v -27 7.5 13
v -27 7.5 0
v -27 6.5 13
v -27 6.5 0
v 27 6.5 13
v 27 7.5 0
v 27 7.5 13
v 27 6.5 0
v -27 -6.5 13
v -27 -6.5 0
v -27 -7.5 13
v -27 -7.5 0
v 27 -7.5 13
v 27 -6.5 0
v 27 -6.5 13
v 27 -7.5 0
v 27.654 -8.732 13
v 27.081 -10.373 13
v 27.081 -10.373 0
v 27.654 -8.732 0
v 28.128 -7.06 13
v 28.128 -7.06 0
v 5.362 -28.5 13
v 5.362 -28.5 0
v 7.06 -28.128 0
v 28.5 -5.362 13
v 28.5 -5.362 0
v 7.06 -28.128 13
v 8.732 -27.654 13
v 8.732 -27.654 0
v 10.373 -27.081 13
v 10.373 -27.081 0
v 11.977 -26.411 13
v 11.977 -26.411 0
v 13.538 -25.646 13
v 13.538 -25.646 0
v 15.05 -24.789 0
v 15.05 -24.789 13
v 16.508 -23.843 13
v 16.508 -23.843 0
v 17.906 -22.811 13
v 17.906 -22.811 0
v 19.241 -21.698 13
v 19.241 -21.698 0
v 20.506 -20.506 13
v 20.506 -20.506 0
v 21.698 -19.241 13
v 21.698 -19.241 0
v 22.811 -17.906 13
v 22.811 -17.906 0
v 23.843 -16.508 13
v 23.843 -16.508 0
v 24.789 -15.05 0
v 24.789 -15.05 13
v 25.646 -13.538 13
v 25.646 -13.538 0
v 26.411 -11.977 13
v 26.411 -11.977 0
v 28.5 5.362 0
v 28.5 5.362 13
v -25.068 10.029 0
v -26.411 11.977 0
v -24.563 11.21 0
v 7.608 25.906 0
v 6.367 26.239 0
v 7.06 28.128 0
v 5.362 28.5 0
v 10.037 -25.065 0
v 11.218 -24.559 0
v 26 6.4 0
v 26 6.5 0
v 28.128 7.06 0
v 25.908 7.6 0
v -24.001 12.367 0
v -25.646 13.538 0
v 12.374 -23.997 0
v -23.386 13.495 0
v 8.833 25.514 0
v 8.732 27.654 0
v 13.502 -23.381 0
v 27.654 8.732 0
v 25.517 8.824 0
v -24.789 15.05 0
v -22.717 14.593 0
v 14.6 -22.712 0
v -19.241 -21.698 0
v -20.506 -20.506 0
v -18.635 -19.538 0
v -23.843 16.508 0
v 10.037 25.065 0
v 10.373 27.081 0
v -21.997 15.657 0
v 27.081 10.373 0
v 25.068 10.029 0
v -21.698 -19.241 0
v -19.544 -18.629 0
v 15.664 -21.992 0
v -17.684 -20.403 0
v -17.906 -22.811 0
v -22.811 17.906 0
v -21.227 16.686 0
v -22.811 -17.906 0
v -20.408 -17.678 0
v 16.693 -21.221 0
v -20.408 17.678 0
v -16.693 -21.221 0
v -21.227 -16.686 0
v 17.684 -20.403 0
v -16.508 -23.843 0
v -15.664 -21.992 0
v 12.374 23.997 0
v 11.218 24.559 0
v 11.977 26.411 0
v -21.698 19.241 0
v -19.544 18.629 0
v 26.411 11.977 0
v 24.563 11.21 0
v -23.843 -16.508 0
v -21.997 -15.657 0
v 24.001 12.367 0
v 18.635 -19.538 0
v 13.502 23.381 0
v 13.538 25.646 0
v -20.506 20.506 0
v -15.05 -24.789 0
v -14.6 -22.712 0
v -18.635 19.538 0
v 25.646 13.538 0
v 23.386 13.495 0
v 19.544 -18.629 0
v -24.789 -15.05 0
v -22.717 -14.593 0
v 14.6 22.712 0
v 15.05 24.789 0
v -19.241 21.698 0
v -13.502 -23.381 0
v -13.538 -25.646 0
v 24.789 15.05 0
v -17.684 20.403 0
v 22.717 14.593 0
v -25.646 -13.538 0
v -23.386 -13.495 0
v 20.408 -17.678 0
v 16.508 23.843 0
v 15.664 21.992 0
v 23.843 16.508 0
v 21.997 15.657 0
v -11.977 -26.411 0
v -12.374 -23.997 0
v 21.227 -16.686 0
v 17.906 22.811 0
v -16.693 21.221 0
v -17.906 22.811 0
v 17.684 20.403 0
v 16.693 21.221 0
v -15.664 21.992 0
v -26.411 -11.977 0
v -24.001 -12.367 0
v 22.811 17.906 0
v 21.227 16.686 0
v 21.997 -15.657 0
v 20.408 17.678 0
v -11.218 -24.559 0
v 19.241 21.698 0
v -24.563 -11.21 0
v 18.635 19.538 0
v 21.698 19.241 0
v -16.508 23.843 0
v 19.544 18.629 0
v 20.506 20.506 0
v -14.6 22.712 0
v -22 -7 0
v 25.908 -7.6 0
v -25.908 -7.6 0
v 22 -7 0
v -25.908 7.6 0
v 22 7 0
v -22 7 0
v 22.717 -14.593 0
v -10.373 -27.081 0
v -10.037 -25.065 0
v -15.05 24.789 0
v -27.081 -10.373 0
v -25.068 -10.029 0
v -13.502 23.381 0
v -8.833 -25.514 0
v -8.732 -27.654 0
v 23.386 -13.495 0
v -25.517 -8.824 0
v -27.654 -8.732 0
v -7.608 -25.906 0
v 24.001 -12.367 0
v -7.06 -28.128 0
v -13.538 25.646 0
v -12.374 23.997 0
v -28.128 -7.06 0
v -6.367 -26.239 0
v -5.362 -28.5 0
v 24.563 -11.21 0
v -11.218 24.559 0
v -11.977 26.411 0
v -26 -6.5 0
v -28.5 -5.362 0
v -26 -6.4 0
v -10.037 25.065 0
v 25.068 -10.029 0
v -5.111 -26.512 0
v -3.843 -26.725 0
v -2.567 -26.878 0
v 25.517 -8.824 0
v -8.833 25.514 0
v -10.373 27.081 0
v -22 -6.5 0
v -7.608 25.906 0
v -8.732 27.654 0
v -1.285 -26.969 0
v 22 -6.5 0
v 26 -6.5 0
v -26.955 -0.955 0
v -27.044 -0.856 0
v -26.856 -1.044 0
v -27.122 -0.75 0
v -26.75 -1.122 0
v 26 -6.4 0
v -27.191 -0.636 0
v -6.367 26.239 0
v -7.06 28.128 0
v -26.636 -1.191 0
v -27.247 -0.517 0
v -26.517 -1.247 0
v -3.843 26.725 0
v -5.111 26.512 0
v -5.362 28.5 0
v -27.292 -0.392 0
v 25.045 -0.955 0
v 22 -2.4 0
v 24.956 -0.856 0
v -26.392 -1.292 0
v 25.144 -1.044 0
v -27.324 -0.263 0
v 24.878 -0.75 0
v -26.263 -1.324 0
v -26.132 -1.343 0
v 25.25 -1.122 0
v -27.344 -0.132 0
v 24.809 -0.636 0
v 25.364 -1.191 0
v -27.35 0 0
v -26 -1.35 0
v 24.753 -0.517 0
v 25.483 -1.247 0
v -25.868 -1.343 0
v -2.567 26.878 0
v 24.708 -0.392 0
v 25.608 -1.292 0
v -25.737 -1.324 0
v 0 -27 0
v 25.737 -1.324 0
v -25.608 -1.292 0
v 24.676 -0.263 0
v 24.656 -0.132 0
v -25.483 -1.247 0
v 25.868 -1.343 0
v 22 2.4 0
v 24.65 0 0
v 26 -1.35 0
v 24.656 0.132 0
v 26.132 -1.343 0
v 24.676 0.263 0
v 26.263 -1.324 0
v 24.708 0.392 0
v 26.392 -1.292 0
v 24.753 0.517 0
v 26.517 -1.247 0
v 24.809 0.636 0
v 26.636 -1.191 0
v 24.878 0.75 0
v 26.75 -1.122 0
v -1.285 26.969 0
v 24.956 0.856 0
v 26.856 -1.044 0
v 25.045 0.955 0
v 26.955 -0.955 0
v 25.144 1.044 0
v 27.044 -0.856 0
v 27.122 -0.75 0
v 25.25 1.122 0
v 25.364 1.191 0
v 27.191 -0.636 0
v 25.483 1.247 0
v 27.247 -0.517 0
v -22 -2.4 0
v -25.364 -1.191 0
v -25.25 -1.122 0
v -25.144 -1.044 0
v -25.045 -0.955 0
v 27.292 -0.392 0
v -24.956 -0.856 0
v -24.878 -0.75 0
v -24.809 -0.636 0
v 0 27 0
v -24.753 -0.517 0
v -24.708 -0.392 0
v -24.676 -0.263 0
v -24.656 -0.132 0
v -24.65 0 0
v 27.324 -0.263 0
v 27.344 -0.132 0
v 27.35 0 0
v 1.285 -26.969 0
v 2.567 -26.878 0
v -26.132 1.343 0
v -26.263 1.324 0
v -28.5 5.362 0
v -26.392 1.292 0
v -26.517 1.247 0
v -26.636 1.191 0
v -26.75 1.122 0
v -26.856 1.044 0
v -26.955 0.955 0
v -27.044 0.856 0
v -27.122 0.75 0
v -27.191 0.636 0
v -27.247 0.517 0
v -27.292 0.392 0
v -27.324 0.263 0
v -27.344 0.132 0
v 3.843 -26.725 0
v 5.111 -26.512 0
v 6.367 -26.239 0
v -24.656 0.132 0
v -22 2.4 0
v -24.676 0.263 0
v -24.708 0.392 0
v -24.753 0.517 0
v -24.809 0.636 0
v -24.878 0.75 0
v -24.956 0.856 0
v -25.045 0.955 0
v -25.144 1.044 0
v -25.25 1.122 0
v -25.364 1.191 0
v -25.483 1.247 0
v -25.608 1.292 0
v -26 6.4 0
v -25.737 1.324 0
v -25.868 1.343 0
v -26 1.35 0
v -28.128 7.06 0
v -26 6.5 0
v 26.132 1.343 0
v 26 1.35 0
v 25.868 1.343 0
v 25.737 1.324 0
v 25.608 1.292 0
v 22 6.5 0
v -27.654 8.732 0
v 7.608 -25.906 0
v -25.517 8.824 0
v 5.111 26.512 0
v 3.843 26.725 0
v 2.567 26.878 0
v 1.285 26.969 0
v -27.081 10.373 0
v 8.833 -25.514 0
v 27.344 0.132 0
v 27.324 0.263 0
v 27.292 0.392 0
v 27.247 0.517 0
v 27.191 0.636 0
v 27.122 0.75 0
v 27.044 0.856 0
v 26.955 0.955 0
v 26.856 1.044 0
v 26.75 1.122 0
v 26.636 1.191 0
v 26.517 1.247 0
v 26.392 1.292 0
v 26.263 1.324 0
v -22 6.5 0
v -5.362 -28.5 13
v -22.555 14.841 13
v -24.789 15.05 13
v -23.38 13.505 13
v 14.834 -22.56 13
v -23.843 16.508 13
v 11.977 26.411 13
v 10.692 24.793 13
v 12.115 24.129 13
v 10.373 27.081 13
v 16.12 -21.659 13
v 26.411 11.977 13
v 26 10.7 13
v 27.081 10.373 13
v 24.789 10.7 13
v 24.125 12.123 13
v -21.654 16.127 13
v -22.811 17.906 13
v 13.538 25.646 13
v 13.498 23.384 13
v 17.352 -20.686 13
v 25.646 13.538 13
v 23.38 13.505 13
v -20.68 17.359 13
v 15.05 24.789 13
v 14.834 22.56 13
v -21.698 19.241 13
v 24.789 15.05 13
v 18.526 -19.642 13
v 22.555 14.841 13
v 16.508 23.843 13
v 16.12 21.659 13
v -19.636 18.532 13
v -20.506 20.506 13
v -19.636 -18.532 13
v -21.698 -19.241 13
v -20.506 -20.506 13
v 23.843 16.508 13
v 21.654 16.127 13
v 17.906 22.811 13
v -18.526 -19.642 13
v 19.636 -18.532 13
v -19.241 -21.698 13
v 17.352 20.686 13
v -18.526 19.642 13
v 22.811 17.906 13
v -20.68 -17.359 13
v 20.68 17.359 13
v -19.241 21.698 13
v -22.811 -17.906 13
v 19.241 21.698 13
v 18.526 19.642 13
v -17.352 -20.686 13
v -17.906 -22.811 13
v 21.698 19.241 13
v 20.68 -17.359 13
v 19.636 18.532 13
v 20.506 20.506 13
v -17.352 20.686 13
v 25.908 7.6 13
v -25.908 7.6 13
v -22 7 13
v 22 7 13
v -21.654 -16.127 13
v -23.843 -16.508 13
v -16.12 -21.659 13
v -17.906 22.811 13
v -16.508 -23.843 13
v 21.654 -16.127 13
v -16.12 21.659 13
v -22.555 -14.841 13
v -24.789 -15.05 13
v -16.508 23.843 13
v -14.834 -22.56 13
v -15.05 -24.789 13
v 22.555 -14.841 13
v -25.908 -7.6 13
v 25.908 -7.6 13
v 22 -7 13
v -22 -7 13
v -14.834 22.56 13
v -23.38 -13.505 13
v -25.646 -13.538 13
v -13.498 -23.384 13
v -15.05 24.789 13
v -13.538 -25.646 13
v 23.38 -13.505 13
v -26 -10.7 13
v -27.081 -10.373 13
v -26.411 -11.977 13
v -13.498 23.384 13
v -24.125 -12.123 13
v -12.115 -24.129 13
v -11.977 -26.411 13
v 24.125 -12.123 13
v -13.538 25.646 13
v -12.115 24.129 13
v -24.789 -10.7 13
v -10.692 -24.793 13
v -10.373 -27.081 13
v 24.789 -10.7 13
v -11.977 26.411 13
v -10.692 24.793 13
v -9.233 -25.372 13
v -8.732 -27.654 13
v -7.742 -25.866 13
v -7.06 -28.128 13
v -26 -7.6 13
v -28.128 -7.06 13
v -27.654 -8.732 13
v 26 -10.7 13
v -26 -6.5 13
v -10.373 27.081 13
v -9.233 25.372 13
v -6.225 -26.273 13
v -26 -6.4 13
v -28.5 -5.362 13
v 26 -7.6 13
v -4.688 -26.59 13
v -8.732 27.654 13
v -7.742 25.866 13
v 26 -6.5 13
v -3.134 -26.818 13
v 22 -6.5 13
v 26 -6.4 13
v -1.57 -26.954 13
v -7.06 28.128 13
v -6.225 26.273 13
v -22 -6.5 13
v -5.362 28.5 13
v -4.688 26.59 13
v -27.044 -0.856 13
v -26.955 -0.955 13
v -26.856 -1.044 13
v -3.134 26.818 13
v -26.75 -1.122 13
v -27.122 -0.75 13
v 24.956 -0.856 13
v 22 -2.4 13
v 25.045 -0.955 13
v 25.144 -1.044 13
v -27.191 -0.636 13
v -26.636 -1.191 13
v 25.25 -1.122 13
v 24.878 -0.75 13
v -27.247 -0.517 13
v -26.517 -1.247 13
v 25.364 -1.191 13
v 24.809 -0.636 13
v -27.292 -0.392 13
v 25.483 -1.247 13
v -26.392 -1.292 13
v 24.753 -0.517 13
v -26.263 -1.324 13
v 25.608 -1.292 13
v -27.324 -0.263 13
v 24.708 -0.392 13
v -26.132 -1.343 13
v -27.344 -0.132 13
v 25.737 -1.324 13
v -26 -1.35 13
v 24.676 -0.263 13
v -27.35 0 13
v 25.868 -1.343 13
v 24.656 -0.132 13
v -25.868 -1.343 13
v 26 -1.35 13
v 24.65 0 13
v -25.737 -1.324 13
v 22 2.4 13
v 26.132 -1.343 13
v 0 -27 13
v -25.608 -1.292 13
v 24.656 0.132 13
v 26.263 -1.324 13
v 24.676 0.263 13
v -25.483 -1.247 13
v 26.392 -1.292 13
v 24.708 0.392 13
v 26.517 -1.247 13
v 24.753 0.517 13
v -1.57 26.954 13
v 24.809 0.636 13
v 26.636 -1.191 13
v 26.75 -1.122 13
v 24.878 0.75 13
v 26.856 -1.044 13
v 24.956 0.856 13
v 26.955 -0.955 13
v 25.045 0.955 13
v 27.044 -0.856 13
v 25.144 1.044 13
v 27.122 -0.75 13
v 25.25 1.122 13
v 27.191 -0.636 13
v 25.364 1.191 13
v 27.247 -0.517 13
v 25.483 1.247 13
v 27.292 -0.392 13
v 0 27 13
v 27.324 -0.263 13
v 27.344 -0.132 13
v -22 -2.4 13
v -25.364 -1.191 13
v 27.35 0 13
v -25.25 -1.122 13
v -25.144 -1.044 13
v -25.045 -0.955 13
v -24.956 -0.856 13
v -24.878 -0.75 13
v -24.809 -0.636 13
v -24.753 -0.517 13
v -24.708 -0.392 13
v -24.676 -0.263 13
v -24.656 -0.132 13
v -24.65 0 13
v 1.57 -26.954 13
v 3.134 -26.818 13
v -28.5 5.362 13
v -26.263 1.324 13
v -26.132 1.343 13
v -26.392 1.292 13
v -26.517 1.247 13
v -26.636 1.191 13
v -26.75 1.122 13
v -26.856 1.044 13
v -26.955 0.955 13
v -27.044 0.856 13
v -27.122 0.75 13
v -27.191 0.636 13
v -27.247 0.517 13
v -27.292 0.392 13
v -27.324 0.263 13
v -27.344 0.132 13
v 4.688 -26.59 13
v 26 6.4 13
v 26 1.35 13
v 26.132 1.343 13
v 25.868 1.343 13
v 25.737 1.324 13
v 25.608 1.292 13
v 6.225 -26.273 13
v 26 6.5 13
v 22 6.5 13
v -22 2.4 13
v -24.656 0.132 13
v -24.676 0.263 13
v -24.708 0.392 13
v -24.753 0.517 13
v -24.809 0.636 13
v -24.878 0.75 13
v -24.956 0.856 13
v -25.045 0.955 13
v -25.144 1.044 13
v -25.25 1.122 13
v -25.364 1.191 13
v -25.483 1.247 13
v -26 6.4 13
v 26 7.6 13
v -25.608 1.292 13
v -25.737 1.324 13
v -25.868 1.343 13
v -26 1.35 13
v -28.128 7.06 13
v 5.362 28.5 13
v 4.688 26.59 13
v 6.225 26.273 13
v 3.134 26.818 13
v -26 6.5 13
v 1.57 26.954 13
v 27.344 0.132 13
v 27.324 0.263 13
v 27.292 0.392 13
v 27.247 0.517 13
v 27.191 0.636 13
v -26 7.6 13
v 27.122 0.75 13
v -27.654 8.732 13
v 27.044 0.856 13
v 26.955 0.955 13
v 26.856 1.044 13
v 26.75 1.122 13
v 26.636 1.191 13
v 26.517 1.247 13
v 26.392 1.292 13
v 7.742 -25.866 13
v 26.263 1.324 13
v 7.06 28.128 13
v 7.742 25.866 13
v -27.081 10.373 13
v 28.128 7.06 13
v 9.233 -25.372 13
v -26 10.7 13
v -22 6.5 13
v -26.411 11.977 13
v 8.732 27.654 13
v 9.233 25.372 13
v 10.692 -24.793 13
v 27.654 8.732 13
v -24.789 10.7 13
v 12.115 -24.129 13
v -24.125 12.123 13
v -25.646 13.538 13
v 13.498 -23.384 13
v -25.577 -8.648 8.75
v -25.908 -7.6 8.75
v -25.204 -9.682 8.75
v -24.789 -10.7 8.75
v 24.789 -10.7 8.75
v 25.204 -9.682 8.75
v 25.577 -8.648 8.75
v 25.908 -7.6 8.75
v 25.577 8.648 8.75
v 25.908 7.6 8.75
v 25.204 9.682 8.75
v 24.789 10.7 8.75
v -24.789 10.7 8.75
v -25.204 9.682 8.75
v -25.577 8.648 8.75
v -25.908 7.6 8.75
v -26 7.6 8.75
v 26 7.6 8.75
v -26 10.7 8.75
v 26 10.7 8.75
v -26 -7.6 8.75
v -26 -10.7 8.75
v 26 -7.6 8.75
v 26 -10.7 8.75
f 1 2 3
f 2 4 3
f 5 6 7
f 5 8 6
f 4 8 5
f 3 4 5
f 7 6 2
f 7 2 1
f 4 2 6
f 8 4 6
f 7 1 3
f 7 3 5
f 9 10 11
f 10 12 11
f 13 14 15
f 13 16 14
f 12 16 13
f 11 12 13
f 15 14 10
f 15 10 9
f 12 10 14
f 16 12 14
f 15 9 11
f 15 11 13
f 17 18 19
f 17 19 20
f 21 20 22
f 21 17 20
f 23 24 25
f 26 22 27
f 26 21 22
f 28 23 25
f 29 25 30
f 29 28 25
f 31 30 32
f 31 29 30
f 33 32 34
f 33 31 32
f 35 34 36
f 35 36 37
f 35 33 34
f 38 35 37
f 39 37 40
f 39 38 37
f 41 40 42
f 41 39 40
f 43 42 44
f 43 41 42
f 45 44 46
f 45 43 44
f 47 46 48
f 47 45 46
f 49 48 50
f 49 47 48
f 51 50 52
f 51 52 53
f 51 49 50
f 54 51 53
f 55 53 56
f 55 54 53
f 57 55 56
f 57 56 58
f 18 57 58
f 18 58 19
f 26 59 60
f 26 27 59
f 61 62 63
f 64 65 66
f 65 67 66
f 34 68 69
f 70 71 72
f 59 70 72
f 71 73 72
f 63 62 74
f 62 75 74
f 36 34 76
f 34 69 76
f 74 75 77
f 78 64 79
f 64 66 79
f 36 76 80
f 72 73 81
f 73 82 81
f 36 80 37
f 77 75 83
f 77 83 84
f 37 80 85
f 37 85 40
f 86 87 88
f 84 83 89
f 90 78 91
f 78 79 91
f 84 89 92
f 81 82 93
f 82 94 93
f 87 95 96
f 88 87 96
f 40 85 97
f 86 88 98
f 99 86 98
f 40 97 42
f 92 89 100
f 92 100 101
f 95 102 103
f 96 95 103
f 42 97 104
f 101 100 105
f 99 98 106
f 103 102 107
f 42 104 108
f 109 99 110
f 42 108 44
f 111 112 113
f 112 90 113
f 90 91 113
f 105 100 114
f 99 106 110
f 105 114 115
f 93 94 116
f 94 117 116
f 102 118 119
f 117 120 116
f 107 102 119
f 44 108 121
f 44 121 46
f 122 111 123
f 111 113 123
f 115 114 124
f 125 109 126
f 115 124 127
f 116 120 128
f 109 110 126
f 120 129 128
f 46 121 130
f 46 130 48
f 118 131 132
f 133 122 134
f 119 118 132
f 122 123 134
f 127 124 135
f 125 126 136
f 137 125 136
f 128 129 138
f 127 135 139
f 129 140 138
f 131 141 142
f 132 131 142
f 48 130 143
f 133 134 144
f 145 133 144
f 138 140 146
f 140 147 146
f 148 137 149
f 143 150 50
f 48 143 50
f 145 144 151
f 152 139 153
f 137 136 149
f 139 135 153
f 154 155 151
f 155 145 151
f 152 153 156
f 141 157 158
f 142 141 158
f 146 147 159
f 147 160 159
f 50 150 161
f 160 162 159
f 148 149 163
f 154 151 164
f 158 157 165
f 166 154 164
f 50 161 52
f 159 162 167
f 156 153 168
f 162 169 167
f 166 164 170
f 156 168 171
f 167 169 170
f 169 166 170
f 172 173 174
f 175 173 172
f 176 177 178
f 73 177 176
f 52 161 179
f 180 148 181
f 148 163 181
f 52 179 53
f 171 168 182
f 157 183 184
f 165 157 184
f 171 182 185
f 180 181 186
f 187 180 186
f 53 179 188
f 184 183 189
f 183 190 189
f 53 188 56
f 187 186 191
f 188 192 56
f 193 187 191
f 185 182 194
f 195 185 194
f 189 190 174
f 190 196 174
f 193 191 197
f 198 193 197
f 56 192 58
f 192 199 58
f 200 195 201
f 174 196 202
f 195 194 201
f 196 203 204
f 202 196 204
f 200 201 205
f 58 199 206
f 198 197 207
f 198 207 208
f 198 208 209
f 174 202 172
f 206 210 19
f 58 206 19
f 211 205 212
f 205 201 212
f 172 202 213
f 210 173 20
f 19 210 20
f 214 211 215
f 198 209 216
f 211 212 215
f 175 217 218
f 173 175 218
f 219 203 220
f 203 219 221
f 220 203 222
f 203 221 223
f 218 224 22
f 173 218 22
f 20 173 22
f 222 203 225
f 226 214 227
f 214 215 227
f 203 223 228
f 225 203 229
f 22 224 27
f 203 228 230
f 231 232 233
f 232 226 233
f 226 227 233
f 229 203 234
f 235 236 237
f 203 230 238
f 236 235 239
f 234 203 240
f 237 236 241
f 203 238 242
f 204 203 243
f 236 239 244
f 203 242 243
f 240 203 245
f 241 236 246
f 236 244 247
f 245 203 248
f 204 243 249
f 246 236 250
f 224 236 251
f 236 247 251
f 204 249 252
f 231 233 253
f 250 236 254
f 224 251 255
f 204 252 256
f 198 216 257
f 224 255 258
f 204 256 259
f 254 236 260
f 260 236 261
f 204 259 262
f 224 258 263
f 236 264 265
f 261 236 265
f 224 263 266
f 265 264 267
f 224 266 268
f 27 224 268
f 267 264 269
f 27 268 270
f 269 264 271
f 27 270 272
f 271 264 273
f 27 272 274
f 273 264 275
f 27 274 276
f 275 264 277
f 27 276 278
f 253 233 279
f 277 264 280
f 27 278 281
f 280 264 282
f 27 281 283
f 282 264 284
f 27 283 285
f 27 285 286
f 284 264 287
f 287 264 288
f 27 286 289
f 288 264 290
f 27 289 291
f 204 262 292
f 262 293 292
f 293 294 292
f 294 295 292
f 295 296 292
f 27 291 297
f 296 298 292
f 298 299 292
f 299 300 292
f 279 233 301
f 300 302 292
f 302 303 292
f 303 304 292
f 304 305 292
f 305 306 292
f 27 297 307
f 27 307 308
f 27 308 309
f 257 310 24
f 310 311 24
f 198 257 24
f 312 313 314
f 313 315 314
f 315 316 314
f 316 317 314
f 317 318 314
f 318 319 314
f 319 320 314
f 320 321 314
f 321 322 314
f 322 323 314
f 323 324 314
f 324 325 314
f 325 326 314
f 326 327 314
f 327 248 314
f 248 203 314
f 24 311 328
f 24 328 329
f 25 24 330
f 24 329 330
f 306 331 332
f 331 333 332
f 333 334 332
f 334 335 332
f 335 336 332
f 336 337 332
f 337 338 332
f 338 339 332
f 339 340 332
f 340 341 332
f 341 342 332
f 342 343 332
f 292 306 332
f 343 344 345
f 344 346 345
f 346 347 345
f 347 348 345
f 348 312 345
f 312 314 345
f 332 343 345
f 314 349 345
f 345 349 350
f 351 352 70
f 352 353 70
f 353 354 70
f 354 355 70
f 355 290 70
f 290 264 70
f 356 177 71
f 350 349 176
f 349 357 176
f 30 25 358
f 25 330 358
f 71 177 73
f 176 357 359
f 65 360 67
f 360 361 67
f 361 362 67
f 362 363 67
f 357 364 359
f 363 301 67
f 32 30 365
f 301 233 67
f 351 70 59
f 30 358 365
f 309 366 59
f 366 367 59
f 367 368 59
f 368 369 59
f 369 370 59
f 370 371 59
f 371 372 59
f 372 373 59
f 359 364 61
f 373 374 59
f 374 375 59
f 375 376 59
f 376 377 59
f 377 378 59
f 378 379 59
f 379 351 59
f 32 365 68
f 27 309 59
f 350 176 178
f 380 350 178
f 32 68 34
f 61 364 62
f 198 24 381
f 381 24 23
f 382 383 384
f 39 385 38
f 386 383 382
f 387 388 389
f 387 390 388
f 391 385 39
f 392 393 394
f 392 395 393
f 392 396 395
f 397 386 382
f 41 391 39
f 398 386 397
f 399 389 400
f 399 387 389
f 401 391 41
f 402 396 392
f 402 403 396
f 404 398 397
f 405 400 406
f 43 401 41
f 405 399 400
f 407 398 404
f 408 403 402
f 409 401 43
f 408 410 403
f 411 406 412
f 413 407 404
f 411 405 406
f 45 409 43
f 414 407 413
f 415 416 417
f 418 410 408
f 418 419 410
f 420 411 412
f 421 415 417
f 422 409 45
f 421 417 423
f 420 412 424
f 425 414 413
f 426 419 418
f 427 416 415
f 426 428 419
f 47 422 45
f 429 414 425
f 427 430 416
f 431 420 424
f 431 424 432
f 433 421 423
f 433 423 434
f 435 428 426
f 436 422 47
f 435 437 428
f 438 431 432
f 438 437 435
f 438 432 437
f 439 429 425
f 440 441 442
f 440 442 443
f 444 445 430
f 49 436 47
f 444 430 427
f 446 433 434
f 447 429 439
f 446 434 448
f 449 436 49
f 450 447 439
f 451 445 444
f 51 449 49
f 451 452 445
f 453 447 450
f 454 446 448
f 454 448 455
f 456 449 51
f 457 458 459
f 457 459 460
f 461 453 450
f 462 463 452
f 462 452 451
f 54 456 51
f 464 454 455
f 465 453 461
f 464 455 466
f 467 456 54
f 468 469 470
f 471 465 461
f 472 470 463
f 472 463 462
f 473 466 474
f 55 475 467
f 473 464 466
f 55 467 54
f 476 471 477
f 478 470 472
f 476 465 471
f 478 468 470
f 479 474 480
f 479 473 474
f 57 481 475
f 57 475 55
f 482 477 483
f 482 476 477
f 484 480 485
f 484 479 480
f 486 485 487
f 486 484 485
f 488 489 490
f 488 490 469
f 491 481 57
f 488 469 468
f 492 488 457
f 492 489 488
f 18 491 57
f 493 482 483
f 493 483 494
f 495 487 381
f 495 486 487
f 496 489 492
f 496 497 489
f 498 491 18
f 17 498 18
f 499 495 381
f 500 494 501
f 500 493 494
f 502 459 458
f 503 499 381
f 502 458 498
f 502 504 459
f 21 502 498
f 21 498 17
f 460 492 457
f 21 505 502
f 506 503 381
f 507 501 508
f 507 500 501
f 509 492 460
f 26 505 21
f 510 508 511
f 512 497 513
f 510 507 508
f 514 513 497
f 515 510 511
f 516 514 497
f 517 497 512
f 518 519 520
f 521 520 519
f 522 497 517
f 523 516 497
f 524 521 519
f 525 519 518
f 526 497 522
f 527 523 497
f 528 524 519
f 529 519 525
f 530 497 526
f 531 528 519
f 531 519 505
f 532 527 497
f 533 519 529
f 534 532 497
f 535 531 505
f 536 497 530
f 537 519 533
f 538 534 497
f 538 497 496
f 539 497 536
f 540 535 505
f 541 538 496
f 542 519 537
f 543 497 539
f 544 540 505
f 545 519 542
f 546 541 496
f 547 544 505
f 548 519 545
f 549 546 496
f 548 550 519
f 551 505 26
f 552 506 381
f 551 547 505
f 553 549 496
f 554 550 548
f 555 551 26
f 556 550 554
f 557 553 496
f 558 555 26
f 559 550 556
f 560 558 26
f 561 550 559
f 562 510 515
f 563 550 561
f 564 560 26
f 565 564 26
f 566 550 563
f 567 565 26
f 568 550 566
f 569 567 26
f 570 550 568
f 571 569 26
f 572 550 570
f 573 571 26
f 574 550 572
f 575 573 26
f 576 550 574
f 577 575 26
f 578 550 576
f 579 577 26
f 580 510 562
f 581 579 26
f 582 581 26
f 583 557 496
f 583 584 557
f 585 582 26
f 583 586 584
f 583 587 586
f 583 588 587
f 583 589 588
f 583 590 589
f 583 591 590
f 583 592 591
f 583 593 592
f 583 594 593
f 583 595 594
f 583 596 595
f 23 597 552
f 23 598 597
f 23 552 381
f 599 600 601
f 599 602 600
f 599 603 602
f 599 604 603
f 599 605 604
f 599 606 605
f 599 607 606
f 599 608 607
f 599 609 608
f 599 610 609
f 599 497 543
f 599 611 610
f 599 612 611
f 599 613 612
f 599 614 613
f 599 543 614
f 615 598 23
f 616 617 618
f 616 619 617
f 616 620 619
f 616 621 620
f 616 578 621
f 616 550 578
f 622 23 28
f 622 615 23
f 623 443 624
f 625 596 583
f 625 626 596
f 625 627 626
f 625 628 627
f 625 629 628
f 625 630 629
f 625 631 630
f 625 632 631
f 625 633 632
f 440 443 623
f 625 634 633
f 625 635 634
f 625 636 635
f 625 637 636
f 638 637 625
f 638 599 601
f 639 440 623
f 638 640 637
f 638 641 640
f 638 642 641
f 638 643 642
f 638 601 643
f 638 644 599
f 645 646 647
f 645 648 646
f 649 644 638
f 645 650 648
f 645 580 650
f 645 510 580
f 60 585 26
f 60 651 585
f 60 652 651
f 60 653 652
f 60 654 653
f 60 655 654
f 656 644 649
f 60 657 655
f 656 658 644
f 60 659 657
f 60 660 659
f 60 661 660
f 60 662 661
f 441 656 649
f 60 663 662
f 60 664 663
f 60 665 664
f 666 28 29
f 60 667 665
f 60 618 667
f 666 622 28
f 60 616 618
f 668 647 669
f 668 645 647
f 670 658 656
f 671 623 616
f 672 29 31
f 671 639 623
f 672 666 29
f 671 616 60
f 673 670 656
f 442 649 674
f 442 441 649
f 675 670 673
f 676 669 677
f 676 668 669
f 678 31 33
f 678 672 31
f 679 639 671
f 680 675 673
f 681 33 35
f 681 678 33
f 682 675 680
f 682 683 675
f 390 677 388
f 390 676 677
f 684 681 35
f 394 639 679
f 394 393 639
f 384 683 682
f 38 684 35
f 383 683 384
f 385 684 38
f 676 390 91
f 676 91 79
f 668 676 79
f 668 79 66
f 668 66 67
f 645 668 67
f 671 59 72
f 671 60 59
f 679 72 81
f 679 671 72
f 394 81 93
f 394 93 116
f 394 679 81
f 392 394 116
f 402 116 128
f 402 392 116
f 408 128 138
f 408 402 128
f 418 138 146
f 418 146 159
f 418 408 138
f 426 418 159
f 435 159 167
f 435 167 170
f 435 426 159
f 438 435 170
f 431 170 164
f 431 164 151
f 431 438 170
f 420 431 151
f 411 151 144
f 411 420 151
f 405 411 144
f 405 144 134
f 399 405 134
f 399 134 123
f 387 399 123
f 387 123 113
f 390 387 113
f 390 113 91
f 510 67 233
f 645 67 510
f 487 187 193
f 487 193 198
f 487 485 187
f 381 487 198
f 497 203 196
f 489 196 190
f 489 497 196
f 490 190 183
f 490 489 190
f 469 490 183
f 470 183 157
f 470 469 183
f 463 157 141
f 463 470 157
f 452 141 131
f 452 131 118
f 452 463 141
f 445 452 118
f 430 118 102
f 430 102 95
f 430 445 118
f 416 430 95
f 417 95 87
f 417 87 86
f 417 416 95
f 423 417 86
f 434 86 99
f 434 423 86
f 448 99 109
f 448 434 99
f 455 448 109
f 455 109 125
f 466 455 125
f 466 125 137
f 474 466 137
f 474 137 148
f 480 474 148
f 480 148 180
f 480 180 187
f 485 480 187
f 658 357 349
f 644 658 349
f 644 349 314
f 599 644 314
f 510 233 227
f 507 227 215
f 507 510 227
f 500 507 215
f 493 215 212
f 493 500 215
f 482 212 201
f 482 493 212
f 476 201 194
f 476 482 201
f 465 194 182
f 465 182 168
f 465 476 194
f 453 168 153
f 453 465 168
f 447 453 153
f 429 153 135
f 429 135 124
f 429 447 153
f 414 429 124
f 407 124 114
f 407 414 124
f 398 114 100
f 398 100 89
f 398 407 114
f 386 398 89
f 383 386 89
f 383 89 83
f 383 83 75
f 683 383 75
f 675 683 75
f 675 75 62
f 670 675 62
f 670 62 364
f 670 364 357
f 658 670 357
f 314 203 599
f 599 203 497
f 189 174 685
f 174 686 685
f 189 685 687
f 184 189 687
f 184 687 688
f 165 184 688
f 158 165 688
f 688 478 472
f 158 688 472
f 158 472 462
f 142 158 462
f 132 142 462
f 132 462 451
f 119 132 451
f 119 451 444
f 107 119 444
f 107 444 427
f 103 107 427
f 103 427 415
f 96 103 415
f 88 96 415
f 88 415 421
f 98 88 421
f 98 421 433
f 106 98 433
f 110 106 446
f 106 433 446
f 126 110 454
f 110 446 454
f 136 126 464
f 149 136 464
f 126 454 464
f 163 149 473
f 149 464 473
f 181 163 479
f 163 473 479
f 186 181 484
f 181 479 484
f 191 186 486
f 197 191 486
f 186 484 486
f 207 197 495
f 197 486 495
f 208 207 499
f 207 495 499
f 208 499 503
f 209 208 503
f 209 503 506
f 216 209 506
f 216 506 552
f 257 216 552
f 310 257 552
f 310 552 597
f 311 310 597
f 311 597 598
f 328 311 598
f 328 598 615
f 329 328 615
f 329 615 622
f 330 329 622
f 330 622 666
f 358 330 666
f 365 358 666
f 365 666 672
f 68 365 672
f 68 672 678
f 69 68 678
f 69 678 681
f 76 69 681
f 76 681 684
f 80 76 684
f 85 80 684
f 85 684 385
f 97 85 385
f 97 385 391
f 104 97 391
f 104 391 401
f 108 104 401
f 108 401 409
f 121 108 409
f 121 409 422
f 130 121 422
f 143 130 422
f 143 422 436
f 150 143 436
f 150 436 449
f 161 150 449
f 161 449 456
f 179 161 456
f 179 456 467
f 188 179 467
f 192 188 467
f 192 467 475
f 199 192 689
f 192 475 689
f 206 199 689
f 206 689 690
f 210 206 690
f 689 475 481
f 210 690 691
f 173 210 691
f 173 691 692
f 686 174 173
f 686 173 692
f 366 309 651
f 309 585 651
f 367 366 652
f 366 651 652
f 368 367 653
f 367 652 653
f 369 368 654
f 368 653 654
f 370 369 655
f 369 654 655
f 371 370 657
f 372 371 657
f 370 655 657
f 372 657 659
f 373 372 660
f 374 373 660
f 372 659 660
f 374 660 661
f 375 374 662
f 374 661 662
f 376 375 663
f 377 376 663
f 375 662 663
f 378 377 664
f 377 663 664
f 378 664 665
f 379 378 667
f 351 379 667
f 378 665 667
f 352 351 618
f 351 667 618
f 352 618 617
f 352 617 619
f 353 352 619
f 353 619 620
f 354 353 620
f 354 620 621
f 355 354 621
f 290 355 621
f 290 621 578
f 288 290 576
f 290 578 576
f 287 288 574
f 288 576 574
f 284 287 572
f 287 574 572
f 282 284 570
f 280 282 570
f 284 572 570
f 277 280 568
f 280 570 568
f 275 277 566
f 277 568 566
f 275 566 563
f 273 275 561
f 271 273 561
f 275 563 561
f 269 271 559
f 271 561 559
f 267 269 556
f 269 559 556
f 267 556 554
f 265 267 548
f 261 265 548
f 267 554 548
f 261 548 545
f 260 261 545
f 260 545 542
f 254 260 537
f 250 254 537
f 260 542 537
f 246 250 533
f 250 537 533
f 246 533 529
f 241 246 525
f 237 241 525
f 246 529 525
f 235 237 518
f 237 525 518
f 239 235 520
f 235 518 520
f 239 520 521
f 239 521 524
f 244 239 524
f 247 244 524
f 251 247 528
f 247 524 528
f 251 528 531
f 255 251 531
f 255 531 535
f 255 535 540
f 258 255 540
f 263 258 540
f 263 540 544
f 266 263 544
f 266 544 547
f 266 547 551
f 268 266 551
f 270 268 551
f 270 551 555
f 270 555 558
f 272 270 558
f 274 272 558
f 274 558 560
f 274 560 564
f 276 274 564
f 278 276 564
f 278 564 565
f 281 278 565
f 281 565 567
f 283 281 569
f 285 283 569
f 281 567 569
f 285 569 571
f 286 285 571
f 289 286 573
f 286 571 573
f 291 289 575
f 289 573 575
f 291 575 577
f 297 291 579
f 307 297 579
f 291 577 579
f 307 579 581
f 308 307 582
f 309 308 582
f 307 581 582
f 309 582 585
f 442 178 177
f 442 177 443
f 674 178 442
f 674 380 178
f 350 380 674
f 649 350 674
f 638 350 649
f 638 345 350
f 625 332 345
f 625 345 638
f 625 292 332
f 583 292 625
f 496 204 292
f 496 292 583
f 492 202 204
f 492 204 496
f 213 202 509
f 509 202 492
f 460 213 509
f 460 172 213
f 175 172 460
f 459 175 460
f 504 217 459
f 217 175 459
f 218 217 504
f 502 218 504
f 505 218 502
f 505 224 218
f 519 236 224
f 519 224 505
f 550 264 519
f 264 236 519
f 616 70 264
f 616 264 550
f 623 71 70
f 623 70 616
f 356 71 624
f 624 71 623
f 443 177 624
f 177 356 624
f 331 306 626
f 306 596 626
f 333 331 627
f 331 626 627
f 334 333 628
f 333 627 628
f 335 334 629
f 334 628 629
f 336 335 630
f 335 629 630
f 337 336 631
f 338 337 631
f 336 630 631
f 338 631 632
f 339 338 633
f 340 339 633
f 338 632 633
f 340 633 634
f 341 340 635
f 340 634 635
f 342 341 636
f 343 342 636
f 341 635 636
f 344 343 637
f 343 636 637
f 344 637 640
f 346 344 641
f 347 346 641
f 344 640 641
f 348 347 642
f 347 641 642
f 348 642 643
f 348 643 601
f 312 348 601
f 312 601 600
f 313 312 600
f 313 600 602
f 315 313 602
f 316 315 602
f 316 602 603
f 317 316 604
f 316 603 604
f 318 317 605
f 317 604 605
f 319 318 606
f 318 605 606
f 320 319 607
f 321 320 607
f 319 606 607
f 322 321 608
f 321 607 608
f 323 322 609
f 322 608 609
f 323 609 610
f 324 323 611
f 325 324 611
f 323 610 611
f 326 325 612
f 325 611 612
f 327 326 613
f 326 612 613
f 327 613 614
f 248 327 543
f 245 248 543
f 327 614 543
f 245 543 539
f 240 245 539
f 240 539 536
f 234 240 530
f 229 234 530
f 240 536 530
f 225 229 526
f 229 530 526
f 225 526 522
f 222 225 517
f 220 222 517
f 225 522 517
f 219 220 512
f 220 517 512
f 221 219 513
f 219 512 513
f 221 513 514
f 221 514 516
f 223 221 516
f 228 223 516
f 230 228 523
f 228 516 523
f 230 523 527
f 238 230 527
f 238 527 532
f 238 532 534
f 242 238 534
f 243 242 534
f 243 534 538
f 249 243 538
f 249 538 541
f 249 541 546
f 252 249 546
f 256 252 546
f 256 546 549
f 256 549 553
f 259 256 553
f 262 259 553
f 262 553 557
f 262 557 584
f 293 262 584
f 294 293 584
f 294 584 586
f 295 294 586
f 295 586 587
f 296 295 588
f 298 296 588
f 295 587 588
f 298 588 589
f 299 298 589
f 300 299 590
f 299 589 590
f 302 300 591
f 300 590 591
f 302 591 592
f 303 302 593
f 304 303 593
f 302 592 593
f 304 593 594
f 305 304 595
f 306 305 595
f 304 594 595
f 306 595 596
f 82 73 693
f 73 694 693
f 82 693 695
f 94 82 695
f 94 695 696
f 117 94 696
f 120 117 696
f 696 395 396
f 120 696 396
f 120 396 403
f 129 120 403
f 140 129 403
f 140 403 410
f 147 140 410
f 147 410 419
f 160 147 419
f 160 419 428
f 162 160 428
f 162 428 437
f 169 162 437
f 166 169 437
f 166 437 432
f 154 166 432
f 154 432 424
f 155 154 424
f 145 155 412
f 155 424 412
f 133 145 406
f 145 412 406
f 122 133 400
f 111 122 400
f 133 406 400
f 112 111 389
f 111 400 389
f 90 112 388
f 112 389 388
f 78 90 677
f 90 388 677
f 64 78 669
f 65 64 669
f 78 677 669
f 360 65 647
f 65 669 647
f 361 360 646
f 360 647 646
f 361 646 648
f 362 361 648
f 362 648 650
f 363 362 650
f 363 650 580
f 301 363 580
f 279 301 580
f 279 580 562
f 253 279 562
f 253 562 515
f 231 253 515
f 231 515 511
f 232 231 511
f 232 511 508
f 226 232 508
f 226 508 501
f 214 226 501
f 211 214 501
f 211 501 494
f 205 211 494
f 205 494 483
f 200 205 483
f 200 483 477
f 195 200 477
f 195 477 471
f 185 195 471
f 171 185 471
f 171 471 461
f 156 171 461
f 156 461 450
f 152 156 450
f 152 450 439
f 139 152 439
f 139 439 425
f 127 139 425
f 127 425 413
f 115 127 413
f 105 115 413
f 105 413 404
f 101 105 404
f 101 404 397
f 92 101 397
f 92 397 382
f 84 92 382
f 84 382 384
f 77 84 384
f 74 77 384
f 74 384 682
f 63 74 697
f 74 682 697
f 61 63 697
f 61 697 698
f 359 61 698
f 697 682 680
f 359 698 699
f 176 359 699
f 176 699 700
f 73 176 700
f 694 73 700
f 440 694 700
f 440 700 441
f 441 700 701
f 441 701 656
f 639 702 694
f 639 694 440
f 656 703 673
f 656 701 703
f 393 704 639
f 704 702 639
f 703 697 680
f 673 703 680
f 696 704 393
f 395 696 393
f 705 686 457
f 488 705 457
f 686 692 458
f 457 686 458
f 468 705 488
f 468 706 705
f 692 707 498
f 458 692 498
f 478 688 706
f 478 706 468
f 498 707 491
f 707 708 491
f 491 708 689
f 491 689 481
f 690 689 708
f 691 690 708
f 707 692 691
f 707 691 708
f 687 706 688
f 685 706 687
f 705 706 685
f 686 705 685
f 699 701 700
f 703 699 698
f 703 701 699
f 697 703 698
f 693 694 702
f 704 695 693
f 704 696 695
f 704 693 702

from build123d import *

# Parameters (mm, degrees)
BOX007_W                   = 54
BOX007_H                   = 1
BOX007_DEPTH               = 13
BOX008_W                   = 54
BOX008_H                   = 1
BOX008_DEPTH               = 13
BOX011_W                   = 5
BOX011_H                   = 5
BOX011_DEPTH               = 13
CHAMFER003_SIZE            = 4.9
CHAMFER003_PLACEMENT_ANGLE = -90
BOX010_W                   = 5
BOX010_H                   = 5
BOX010_DEPTH               = 13
CHAMFER002_SIZE            = 4.9
CHAMFER002_PLACEMENT_ANGLE = 180
BOX009_W                   = 5
BOX009_H                   = 5
BOX009_DEPTH               = 13
CHAMFER001_SIZE            = 4.9
CHAMFER001_PLACEMENT_ANGLE = 90
BOX006_W                   = 5
BOX006_H                   = 5
BOX006_DEPTH               = 13
CHAMFER_SIZE               = 4.9
BOX003_W                   = 44
BOX003_H                   = 14
BOX003_DEPTH               = 13
BOX002_W                   = 52
BOX002_H                   = 3.1
BOX002_DEPTH               = 4.3
BOX001_W                   = 52
BOX001_H                   = 3.1
BOX001_DEPTH               = 4.3
BOX005_W                   = 60
BOX005_H                   = 60
BOX005_DEPTH               = 13
CYLINDER004_R              = 27
CYLINDER004_DEPTH          = 13
BOX004_W                   = 60
BOX004_H                   = 60
BOX004_DEPTH               = 13
CYLINDER003_R              = 27
CYLINDER003_DEPTH          = 13
CYLINDER002_R              = 1.35
CYLINDER002_DEPTH          = 13
CYLINDER001_R              = 1.35
CYLINDER001_DEPTH          = 13
BOX_W                      = 57
BOX_H                      = 57
BOX_DEPTH                  = 13
CYLINDER_R                 = 29
CYLINDER_DEPTH             = 13


with BuildPart() as cube007:
    # Box007 → Box007 (new body)
    with BuildSketch(Plane(origin=(-27, 6.5, 0), x_dir=(1, 0, 0), z_dir=(0, 0, 1))):
        with Locations((27, 0.5)):
            Rectangle(BOX007_W, BOX007_H)
    extrude(amount=BOX007_DEPTH)


with BuildPart() as cube008:
    # Box008 → Box008 (new body)
    with BuildSketch(Plane(origin=(-27, -7.5, 0), x_dir=(1, 0, 0), z_dir=(0, 0, 1))):
        with Locations((27, 0.5)):
            Rectangle(BOX008_W, BOX008_H)
    extrude(amount=BOX008_DEPTH)


with BuildPart() as chamfer003:
    # Box011 → Box011 (new body)
    with BuildSketch(Plane.XY):
        with Locations((2.5, 2.5)):
            Rectangle(BOX011_W, BOX011_H)
    extrude(amount=BOX011_DEPTH)

    # Chamfer003
    chamfer003_edges = [chamfer003.edges().sort_by_distance(p)[0] for p in [
        (0, 0, 6.5),
    ]]
    chamfer(chamfer003_edges, length=CHAMFER003_SIZE)


with BuildPart() as chamfer003_1:
    # Chamfer003 placement: moved
    add(chamfer003.part.moved(Location((-26, -1.5, 0))).rotate(Axis((-26, -1.5, 0), (0, 0, 1)), CHAMFER003_PLACEMENT_ANGLE))


with BuildPart() as chamfer002:
    # Box010 → Box010 (new body)
    with BuildSketch(Plane.XY):
        with Locations((2.5, 2.5)):
            Rectangle(BOX010_W, BOX010_H)
    extrude(amount=BOX010_DEPTH)

    # Chamfer002
    chamfer002_edges = [chamfer002.edges().sort_by_distance(p)[0] for p in [
        (0, 0, 6.5),
    ]]
    chamfer(chamfer002_edges, length=CHAMFER002_SIZE)


with BuildPart() as chamfer002_1:
    # Chamfer002 placement: moved
    add(chamfer002.part.moved(Location((26, -1.5, 0))).rotate(Axis((26, -1.5, 0), (0, 0, 1)), CHAMFER002_PLACEMENT_ANGLE))


with BuildPart() as chamfer001:
    # Box009 → Box009 (new body)
    with BuildSketch(Plane.XY):
        with Locations((2.5, 2.5)):
            Rectangle(BOX009_W, BOX009_H)
    extrude(amount=BOX009_DEPTH)

    # Chamfer001
    chamfer001_edges = [chamfer001.edges().sort_by_distance(p)[0] for p in [
        (0, 0, 6.5),
    ]]
    chamfer(chamfer001_edges, length=CHAMFER001_SIZE)


with BuildPart() as chamfer001_1:
    # Chamfer001 placement: moved
    add(chamfer001.part.moved(Location((26, 1.5, 0))).rotate(Axis((26, 1.5, 0), (0, 0, 1)), CHAMFER001_PLACEMENT_ANGLE))


with BuildPart() as chamfer_body:
    # Box006 → Box006 (new body)
    with BuildSketch(Plane.XY):
        with Locations((2.5, 2.5)):
            Rectangle(BOX006_W, BOX006_H)
    extrude(amount=BOX006_DEPTH)

    # Chamfer
    chamfer_edges = [chamfer_body.edges().sort_by_distance(p)[0] for p in [
        (0, 0, 6.5),
    ]]
    chamfer(chamfer_edges, length=CHAMFER_SIZE)


with BuildPart() as chamfer_body_1:
    # Chamfer placement: moved
    add(chamfer_body.part.moved(Location((-26, 1.5, 0))))


with BuildPart() as cube003:
    # Box003 → Box003 (new body)
    with BuildSketch(Plane(origin=(-22, -7, 0), x_dir=(1, 0, 0), z_dir=(0, 0, 1))):
        with Locations((22, 7)):
            Rectangle(BOX003_W, BOX003_H)
    extrude(amount=BOX003_DEPTH)


with BuildPart() as cube002:
    # Box002 → Box002 (new body)
    with BuildSketch(Plane(origin=(-26, -10.7, 8.75), x_dir=(1, 0, 0), z_dir=(0, 0, 1))):
        with Locations((26, 1.55)):
            Rectangle(BOX002_W, BOX002_H)
    extrude(amount=BOX002_DEPTH)


with BuildPart() as cube001:
    # Box001 → Box001 (new body)
    with BuildSketch(Plane(origin=(-26, 7.6, 8.75), x_dir=(1, 0, 0), z_dir=(0, 0, 1))):
        with Locations((26, 1.55)):
            Rectangle(BOX001_W, BOX001_H)
    extrude(amount=BOX001_DEPTH)


with BuildPart() as cube005:
    # Box005 → Box005 (new body)
    with BuildSketch(Plane(origin=(-30, -52.4, 0), x_dir=(1, 0, 0), z_dir=(0, 0, 1))):
        with Locations((30, 30)):
            Rectangle(BOX005_W, BOX005_H)
    extrude(amount=BOX005_DEPTH)


with BuildPart() as cut003:
    # Cylinder004 → Cylinder004 (new body)
    with BuildSketch(Plane.XY):
        Circle(CYLINDER004_R)
    extrude(amount=CYLINDER004_DEPTH)

    # Cut003: cut Cube005
    add(cube005.part, mode=Mode.SUBTRACT)


with BuildPart() as cube004:
    # Box004 → Box004 (new body)
    with BuildSketch(Plane(origin=(-30, -7.6, 0), x_dir=(1, 0, 0), z_dir=(0, 0, 1))):
        with Locations((30, 30)):
            Rectangle(BOX004_W, BOX004_H)
    extrude(amount=BOX004_DEPTH)


with BuildPart() as cut002:
    # Cylinder003 → Cylinder003 (new body)
    with BuildSketch(Plane.XY):
        Circle(CYLINDER003_R)
    extrude(amount=CYLINDER003_DEPTH)

    # Cut002: cut Cube004
    add(cube004.part, mode=Mode.SUBTRACT)


with BuildPart() as cylinder002:
    # Cylinder002 → Cylinder002 (new body)
    with BuildSketch(Plane(origin=(-26, 0, 0), x_dir=(1, 0, 0), z_dir=(0, 0, 1))):
        Circle(CYLINDER002_R)
    extrude(amount=CYLINDER002_DEPTH)


with BuildPart() as cylinder001:
    # Cylinder001 → Cylinder001 (new body)
    with BuildSketch(Plane(origin=(26, 0, 0), x_dir=(1, 0, 0), z_dir=(0, 0, 1))):
        Circle(CYLINDER001_R)
    extrude(amount=CYLINDER001_DEPTH)


with BuildPart() as cube:
    # Box → Box (new body)
    with BuildSketch(Plane(origin=(-28.5, -28.5, 0), x_dir=(1, 0, 0), z_dir=(0, 0, 1))):
        with Locations((28.5, 28.5)):
            Rectangle(BOX_W, BOX_H)
    extrude(amount=BOX_DEPTH)


with BuildPart() as cut012:
    # Cylinder → Cylinder (new body)
    with BuildSketch(Plane.XY):
        Circle(CYLINDER_R)
    extrude(amount=CYLINDER_DEPTH)

    # Common: intersect Cube
    add(cube.part, mode=Mode.INTERSECT)

    # Cut: cut Cylinder001
    add(cylinder001.part, mode=Mode.SUBTRACT)

    # Cut001: cut Cylinder002
    add(cylinder002.part, mode=Mode.SUBTRACT)

    # Cut004: cut Cut002
    add(cut002.part, mode=Mode.SUBTRACT)

    # Cut005: cut Cut003
    add(cut003.part, mode=Mode.SUBTRACT)

    # Cut006: cut Cube001
    add(cube001.part, mode=Mode.SUBTRACT)

    # Cut007: cut Cube002
    add(cube002.part, mode=Mode.SUBTRACT)

    # Cut008: cut Cube003
    add(cube003.part, mode=Mode.SUBTRACT)

    # Cut009: cut Chamfer body
    add(chamfer_body_1.part, mode=Mode.SUBTRACT)

    # Cut010: cut Chamfer001
    add(chamfer001_1.part, mode=Mode.SUBTRACT)

    # Cut011: cut Chamfer002
    add(chamfer002_1.part, mode=Mode.SUBTRACT)

    # Cut012: cut Chamfer003
    add(chamfer003_1.part, mode=Mode.SUBTRACT)


solid = Compound([cube007.part, cube008.part, cut012.part])
